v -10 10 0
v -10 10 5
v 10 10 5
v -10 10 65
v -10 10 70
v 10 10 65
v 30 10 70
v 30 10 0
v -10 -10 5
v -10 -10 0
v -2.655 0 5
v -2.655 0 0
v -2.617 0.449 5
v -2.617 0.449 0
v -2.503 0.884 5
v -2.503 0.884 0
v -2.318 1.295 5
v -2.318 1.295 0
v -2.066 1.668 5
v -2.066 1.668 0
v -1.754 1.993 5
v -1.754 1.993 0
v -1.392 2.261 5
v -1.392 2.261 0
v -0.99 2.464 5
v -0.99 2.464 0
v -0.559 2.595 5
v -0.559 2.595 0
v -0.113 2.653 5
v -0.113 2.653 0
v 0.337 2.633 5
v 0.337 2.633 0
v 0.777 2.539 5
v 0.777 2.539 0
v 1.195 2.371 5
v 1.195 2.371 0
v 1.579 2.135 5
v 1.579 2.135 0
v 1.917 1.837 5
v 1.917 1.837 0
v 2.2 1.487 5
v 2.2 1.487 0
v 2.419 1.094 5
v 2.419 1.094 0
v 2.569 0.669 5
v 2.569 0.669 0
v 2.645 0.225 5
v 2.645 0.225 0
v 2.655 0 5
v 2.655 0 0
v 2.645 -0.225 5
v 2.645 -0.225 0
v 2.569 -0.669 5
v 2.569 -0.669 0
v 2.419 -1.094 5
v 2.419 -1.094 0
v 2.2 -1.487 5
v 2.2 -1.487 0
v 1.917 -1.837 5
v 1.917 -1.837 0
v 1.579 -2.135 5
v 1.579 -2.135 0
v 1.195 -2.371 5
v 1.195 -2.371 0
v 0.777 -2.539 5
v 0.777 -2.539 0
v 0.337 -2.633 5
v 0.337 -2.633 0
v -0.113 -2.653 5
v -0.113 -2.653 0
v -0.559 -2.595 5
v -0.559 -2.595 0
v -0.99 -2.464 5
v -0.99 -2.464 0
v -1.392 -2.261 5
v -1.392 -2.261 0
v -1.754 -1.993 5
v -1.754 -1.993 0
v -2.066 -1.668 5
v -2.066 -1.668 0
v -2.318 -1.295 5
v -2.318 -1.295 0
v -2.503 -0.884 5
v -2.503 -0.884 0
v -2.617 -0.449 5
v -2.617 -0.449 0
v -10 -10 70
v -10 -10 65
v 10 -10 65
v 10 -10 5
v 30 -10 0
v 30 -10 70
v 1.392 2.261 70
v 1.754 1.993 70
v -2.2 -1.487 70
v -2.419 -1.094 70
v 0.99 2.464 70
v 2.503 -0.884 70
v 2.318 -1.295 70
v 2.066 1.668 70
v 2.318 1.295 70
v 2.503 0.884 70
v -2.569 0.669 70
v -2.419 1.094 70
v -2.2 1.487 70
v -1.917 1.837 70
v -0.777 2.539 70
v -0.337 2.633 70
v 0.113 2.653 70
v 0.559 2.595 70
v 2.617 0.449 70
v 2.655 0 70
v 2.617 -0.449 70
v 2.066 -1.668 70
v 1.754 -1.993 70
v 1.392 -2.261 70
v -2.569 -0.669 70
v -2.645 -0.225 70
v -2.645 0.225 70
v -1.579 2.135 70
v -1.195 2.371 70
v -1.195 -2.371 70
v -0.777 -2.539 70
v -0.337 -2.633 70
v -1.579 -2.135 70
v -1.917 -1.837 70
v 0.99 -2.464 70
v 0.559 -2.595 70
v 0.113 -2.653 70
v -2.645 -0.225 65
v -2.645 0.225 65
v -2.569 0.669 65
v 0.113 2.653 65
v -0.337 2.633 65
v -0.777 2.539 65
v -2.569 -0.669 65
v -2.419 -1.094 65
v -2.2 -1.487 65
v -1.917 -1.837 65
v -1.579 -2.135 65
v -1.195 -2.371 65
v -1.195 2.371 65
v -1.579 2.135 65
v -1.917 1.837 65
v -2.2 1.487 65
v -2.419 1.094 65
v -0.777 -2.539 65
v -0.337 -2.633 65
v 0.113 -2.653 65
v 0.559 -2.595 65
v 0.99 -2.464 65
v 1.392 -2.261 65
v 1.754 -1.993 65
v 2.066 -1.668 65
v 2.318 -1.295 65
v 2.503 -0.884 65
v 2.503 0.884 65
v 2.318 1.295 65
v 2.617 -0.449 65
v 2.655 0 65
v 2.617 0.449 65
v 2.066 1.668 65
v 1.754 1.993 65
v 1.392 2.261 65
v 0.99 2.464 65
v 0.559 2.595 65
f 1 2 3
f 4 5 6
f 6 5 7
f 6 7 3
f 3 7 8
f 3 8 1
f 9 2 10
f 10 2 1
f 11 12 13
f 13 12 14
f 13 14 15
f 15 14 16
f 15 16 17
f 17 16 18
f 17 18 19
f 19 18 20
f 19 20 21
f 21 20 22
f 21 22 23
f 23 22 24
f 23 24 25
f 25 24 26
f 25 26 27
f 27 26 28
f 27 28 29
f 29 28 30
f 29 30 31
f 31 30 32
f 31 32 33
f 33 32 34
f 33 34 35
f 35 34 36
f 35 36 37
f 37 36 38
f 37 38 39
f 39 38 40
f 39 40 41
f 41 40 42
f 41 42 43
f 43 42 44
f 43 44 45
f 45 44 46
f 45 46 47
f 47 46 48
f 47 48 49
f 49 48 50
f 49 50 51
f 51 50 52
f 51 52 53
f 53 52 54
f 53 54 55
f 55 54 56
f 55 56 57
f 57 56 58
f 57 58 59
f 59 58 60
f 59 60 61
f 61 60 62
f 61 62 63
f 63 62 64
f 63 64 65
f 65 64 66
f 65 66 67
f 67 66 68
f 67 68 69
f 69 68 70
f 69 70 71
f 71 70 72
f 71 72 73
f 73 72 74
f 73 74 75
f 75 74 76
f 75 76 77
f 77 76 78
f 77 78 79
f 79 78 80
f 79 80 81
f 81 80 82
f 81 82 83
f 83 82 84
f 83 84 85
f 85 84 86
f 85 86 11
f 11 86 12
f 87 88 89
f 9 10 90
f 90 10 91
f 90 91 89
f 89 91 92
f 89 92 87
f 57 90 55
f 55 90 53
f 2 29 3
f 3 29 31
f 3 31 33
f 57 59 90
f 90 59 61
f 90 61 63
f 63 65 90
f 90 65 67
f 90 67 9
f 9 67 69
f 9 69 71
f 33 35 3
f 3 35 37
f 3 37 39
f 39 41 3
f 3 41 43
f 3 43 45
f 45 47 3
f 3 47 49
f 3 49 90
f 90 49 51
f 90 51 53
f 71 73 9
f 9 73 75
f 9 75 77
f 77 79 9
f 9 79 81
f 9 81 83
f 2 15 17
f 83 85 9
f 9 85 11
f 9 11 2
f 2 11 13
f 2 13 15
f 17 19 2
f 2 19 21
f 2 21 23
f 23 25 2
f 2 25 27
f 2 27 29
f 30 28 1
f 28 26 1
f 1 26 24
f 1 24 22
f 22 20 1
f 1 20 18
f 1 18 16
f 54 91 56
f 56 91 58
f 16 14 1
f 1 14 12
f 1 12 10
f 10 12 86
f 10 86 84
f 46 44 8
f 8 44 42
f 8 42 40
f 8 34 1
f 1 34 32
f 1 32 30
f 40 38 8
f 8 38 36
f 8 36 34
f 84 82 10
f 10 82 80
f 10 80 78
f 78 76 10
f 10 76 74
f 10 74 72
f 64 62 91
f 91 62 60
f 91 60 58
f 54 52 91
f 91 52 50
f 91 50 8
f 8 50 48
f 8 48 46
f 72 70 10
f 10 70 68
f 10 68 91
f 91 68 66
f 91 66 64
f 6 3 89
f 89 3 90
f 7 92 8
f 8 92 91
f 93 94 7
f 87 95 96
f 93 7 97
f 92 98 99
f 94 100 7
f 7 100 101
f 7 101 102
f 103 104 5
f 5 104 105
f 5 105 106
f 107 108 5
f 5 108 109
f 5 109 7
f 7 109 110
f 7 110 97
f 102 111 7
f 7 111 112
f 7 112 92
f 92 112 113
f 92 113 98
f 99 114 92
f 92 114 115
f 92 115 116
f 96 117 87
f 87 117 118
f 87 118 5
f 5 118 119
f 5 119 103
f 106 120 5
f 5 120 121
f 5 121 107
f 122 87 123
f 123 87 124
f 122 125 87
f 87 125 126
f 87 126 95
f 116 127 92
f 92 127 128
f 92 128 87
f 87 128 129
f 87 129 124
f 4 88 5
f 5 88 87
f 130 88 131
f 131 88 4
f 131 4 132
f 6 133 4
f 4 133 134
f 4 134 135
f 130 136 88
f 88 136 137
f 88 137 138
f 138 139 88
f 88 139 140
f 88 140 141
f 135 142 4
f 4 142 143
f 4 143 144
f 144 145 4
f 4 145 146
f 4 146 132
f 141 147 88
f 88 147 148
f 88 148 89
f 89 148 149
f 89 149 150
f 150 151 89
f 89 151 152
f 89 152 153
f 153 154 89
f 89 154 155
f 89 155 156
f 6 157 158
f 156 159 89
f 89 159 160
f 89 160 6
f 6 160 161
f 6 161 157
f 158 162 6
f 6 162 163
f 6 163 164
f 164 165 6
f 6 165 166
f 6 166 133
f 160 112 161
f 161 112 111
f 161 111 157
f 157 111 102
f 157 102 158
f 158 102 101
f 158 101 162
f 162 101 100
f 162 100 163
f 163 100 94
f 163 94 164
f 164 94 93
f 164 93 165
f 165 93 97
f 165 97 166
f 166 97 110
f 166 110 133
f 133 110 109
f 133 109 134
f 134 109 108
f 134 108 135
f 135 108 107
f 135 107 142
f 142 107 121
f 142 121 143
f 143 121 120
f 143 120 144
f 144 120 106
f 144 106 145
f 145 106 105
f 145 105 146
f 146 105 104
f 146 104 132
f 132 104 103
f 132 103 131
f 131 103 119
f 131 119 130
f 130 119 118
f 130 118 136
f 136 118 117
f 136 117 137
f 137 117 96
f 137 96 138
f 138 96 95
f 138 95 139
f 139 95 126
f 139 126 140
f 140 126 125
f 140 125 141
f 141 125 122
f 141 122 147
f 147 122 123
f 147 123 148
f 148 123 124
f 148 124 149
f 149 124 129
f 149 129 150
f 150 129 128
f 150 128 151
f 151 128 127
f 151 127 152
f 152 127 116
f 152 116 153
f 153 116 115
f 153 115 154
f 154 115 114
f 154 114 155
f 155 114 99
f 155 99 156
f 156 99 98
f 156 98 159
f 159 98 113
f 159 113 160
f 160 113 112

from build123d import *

# Parameters (mm, degrees)
SKETCH2_W           = 20
SKETCH2_H           = 20
SKETCH2_R           = 2.655
BOSS_EXTRUDE1_DEPTH = 5
SKETCH2_3_W         = 20
SKETCH2_3_H         = 20
BOSS_EXTRUDE2_DEPTH = 70
BOSS_EXTRUDE3_START = 65
SKETCH2_4_W         = 20
SKETCH2_4_H         = 20
SKETCH2_4_R         = 2.655
BOSS_EXTRUDE3_DEPTH = 5


with BuildPart() as part:
    # Sketch2 → Boss-Extrude1 (new body)
    with BuildSketch(Plane.XY):
        Rectangle(SKETCH2_W, SKETCH2_H)
        Circle(SKETCH2_R, mode=Mode.SUBTRACT)
    extrude(amount=BOSS_EXTRUDE1_DEPTH)

    # Sketch2<3> → Boss-Extrude2 (add)
    with BuildSketch(Plane.XY):
        with Locations((20, 0)):
            Rectangle(SKETCH2_3_W, SKETCH2_3_H)
    extrude(amount=BOSS_EXTRUDE2_DEPTH)

    # Sketch2<4> → Boss-Extrude3 (add)
    with BuildSketch(Plane.XY.offset(BOSS_EXTRUDE3_START)):
        Rectangle(SKETCH2_4_W, SKETCH2_4_H)
        Circle(SKETCH2_4_R, mode=Mode.SUBTRACT)
    extrude(amount=BOSS_EXTRUDE3_DEPTH)


solid = part.part
